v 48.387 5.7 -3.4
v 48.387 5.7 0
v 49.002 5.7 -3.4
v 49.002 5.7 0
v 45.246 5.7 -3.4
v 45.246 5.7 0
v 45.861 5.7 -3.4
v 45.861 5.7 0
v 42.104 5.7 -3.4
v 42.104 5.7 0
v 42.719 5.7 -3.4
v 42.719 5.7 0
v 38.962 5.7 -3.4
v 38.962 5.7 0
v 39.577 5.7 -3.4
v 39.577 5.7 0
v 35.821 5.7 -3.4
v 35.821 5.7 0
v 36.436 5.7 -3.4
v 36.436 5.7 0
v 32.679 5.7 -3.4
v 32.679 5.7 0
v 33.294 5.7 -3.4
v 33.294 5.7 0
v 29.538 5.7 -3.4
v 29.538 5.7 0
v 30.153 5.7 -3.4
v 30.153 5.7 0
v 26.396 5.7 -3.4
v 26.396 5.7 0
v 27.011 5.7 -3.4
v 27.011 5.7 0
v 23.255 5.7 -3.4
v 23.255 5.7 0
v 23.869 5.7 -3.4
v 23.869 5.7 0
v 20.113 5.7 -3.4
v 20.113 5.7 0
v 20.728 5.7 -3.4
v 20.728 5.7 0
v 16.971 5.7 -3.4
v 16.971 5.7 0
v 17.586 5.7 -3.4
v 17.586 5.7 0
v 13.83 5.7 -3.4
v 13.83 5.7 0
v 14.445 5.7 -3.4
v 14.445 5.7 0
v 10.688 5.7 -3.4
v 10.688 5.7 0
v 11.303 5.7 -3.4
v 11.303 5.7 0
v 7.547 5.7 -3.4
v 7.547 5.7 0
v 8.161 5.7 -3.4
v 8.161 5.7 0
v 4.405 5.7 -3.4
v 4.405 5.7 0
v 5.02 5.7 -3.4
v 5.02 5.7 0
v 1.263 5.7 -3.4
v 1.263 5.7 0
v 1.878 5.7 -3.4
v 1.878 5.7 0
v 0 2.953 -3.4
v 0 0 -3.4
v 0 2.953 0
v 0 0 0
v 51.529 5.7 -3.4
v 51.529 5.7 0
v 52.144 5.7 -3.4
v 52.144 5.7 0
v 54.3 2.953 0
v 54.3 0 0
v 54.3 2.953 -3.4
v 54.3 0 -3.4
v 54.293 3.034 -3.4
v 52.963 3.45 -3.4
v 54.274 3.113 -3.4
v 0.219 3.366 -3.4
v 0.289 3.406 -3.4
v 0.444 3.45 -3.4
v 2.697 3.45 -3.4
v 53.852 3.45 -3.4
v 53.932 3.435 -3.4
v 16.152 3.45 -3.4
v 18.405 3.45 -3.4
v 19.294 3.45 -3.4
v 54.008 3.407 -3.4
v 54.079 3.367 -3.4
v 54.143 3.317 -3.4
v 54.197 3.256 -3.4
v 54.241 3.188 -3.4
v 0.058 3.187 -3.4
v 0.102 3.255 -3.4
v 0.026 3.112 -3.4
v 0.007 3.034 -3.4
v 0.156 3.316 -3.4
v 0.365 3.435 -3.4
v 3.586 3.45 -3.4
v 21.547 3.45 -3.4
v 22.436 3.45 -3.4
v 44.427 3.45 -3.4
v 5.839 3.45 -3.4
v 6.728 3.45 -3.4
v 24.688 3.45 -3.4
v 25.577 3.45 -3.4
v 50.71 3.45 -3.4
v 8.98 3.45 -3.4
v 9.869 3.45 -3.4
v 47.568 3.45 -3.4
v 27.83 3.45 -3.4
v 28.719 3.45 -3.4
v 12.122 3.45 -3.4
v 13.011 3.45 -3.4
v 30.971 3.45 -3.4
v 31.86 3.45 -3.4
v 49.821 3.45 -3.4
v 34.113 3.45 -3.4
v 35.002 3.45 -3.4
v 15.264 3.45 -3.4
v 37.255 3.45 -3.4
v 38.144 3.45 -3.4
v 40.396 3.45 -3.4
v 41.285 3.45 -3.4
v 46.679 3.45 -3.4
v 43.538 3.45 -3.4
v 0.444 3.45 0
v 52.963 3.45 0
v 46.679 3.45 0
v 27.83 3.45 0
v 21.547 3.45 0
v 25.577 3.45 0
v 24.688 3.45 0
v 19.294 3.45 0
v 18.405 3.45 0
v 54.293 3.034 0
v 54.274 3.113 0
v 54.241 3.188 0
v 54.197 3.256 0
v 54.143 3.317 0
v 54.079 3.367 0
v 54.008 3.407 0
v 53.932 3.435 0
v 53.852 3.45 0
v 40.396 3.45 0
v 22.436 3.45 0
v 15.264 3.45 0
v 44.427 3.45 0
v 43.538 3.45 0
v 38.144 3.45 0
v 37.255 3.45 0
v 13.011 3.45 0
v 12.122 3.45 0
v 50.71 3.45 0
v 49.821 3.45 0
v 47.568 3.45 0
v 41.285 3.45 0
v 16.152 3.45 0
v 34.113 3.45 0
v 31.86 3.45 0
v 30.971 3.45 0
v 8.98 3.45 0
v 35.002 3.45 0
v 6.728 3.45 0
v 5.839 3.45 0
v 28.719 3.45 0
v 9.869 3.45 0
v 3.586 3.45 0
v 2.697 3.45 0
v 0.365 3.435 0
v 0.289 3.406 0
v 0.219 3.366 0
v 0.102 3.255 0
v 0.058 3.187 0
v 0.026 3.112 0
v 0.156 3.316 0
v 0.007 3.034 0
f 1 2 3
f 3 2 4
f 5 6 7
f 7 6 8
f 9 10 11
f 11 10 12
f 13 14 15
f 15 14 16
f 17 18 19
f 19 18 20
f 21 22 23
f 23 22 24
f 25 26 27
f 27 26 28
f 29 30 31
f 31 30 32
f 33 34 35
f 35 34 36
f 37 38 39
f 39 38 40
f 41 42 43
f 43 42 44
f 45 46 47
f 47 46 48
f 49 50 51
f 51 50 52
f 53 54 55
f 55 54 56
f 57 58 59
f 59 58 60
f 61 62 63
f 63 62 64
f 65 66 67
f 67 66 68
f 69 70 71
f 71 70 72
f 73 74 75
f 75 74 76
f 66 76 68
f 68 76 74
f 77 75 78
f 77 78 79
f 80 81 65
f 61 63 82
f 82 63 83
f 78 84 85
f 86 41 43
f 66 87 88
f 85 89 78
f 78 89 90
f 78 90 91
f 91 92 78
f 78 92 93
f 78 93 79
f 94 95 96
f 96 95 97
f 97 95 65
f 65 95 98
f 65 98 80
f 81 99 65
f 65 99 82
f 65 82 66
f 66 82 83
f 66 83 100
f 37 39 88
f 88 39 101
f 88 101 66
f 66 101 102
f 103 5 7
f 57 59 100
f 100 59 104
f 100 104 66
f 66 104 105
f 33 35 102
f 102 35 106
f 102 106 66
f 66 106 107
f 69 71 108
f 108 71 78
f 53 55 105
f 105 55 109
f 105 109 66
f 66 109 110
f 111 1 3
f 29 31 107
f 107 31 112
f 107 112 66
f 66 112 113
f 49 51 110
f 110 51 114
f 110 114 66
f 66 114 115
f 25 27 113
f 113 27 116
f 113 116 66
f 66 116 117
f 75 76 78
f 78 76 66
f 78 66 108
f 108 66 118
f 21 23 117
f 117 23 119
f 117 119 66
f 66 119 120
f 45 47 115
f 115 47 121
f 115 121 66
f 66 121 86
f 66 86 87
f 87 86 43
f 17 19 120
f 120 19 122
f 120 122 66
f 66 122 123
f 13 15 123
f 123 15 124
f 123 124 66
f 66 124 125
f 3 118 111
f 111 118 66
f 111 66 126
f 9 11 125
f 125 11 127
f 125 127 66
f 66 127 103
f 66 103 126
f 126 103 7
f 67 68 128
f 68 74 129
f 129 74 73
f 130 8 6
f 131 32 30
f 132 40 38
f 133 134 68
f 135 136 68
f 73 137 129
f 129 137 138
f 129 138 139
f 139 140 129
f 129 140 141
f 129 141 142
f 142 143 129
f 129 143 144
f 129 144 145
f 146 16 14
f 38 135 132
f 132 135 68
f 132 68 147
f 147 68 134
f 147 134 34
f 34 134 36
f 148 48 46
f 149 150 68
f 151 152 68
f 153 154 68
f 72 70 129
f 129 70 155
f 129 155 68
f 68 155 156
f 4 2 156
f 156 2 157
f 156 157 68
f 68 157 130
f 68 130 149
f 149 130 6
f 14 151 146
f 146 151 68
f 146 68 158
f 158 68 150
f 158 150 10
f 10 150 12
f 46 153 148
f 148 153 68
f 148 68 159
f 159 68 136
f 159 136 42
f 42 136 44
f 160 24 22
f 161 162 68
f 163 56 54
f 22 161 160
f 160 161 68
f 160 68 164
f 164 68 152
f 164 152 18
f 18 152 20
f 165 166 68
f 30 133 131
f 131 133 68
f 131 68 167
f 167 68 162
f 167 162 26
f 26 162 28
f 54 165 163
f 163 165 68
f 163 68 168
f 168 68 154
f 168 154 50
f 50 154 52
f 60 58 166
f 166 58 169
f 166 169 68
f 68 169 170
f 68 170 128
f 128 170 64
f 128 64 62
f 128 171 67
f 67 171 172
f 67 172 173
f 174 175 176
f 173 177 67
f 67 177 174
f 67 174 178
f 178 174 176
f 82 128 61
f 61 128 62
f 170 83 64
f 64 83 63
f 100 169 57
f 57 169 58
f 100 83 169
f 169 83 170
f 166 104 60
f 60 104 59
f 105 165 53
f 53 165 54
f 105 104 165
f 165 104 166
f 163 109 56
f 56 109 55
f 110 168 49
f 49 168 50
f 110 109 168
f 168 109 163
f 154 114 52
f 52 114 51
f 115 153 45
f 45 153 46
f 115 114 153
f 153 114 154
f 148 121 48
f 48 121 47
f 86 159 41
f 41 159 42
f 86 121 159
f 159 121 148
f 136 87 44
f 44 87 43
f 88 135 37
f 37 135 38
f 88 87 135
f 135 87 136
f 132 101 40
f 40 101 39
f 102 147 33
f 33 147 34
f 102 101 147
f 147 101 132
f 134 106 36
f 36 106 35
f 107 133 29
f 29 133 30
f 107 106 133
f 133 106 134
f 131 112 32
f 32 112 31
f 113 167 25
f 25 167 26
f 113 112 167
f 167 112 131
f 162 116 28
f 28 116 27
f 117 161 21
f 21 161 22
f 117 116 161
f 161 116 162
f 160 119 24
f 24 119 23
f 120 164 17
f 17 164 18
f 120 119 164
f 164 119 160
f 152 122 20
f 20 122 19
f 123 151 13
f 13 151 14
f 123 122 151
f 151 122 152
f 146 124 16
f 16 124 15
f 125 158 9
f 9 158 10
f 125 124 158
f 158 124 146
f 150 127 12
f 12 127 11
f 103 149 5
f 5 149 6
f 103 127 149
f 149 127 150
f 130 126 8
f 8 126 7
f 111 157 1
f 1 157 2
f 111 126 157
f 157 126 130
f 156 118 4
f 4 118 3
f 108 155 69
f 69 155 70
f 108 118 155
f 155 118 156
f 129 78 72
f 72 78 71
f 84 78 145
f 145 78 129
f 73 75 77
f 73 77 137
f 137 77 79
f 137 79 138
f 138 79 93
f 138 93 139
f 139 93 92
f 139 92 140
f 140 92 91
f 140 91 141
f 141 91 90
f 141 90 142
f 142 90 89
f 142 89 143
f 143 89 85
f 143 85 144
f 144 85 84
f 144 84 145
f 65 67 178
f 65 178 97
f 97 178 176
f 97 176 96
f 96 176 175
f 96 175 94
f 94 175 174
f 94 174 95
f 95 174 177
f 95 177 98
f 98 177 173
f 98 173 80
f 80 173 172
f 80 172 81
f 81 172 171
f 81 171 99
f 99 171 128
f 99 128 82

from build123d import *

# Parameters (mm, degrees)
BLANKSKE_W        = 54.3
BLANKSKE_H        = 5.7
BLANK_DEPTH       = 3.4
TOOTHCUTSIM_DEPTH = 55.704113191
TEETHCUTS_COUNT   = 18
TEETHCUTS_PITCH   = 3.14159265
VERRUNDUNG1_R     = 0.5
VERRUNDUNG2_R     = 0.5


with BuildPart() as part:
    # BlankSke → Blank (new body)
    with BuildSketch(Plane.XY):
        with Locations((27.15, 2.85)):
            Rectangle(BLANKSKE_W, BLANKSKE_H)
    extrude(amount=-BLANK_DEPTH)

    # TooCutSkeSim → ToothCutSim (cut, through all)
    with BuildSketch(Plane.XY):
        Polygon((0.44443537, 3.45), (-0.44443537, 3.45), (-1.272613241, 5.7254), (1.272613241, 5.7254), align=None)
    toothcutsim = extrude(amount=-TOOTHCUTSIM_DEPTH, mode=Mode.SUBTRACT)

    # TeethCuts: ToothCutSim ×18
    with Locations(*[(i * TEETHCUTS_PITCH, 0, 0) for i in range(1, TEETHCUTS_COUNT)]):
        add(toothcutsim, mode=Mode.SUBTRACT)

    # Verrundung1
    # the kernel refuses this fillet: 0.5 mm, written as the material it takes off along each edge
    with BuildSketch(Plane(origin=(54.3, 4.682214995, -7.723886484), x_dir=(0, -1, 0), z_dir=(0, 0, 1))) as verrundung1_piece_1:
        with BuildLine():
            CenterArc((1.729554594, -0.5), VERRUNDUNG1_R, 90, 84.086849411)
            Line((1.232214995, -0.44848958), (1.222268203, -0.447459372))
            ThreePointArc((1.222268203, -0.447459372), (0.612687296, -0.233641716), (-0.003420201, -0.009396926))
            Line((-0.003420201, -0.009396926), (0, 0.01))
            Line((0, 0.01), (1.729554594, 0.01))
            Line((1.729554594, 0.01), (1.729554594, 0))
        make_face()
    extrude(amount=12.047772969, mode=Mode.SUBTRACT)

    # Verrundung2
    # the kernel refuses this fillet: 0.5 mm, written as the material it takes off along each edge
    with BuildSketch(Plane(origin=(0, 3.45, 1.242257451), x_dir=(0, -1, 0), z_dir=(0, 0, -1))) as verrundung2_piece_1:
        with BuildLine():
            CenterArc((0.49690298, -0.5), VERRUNDUNG2_R, 90, 83.619583418)
            Line((0, -0.44443537), (-0.00993806, -0.443324077))
            ThreePointArc((-0.00993806, -0.443324077), (-0.01, -0.222217685), (-0.01, 0))
            Line((-0.01, 0), (0, 0.01))
            Line((0, 0.01), (0.49690298, 0.01))
            Line((0.49690298, 0.01), (0.49690298, 0))
        make_face()
    extrude(amount=5.884514902, mode=Mode.SUBTRACT)


solid = part.part
